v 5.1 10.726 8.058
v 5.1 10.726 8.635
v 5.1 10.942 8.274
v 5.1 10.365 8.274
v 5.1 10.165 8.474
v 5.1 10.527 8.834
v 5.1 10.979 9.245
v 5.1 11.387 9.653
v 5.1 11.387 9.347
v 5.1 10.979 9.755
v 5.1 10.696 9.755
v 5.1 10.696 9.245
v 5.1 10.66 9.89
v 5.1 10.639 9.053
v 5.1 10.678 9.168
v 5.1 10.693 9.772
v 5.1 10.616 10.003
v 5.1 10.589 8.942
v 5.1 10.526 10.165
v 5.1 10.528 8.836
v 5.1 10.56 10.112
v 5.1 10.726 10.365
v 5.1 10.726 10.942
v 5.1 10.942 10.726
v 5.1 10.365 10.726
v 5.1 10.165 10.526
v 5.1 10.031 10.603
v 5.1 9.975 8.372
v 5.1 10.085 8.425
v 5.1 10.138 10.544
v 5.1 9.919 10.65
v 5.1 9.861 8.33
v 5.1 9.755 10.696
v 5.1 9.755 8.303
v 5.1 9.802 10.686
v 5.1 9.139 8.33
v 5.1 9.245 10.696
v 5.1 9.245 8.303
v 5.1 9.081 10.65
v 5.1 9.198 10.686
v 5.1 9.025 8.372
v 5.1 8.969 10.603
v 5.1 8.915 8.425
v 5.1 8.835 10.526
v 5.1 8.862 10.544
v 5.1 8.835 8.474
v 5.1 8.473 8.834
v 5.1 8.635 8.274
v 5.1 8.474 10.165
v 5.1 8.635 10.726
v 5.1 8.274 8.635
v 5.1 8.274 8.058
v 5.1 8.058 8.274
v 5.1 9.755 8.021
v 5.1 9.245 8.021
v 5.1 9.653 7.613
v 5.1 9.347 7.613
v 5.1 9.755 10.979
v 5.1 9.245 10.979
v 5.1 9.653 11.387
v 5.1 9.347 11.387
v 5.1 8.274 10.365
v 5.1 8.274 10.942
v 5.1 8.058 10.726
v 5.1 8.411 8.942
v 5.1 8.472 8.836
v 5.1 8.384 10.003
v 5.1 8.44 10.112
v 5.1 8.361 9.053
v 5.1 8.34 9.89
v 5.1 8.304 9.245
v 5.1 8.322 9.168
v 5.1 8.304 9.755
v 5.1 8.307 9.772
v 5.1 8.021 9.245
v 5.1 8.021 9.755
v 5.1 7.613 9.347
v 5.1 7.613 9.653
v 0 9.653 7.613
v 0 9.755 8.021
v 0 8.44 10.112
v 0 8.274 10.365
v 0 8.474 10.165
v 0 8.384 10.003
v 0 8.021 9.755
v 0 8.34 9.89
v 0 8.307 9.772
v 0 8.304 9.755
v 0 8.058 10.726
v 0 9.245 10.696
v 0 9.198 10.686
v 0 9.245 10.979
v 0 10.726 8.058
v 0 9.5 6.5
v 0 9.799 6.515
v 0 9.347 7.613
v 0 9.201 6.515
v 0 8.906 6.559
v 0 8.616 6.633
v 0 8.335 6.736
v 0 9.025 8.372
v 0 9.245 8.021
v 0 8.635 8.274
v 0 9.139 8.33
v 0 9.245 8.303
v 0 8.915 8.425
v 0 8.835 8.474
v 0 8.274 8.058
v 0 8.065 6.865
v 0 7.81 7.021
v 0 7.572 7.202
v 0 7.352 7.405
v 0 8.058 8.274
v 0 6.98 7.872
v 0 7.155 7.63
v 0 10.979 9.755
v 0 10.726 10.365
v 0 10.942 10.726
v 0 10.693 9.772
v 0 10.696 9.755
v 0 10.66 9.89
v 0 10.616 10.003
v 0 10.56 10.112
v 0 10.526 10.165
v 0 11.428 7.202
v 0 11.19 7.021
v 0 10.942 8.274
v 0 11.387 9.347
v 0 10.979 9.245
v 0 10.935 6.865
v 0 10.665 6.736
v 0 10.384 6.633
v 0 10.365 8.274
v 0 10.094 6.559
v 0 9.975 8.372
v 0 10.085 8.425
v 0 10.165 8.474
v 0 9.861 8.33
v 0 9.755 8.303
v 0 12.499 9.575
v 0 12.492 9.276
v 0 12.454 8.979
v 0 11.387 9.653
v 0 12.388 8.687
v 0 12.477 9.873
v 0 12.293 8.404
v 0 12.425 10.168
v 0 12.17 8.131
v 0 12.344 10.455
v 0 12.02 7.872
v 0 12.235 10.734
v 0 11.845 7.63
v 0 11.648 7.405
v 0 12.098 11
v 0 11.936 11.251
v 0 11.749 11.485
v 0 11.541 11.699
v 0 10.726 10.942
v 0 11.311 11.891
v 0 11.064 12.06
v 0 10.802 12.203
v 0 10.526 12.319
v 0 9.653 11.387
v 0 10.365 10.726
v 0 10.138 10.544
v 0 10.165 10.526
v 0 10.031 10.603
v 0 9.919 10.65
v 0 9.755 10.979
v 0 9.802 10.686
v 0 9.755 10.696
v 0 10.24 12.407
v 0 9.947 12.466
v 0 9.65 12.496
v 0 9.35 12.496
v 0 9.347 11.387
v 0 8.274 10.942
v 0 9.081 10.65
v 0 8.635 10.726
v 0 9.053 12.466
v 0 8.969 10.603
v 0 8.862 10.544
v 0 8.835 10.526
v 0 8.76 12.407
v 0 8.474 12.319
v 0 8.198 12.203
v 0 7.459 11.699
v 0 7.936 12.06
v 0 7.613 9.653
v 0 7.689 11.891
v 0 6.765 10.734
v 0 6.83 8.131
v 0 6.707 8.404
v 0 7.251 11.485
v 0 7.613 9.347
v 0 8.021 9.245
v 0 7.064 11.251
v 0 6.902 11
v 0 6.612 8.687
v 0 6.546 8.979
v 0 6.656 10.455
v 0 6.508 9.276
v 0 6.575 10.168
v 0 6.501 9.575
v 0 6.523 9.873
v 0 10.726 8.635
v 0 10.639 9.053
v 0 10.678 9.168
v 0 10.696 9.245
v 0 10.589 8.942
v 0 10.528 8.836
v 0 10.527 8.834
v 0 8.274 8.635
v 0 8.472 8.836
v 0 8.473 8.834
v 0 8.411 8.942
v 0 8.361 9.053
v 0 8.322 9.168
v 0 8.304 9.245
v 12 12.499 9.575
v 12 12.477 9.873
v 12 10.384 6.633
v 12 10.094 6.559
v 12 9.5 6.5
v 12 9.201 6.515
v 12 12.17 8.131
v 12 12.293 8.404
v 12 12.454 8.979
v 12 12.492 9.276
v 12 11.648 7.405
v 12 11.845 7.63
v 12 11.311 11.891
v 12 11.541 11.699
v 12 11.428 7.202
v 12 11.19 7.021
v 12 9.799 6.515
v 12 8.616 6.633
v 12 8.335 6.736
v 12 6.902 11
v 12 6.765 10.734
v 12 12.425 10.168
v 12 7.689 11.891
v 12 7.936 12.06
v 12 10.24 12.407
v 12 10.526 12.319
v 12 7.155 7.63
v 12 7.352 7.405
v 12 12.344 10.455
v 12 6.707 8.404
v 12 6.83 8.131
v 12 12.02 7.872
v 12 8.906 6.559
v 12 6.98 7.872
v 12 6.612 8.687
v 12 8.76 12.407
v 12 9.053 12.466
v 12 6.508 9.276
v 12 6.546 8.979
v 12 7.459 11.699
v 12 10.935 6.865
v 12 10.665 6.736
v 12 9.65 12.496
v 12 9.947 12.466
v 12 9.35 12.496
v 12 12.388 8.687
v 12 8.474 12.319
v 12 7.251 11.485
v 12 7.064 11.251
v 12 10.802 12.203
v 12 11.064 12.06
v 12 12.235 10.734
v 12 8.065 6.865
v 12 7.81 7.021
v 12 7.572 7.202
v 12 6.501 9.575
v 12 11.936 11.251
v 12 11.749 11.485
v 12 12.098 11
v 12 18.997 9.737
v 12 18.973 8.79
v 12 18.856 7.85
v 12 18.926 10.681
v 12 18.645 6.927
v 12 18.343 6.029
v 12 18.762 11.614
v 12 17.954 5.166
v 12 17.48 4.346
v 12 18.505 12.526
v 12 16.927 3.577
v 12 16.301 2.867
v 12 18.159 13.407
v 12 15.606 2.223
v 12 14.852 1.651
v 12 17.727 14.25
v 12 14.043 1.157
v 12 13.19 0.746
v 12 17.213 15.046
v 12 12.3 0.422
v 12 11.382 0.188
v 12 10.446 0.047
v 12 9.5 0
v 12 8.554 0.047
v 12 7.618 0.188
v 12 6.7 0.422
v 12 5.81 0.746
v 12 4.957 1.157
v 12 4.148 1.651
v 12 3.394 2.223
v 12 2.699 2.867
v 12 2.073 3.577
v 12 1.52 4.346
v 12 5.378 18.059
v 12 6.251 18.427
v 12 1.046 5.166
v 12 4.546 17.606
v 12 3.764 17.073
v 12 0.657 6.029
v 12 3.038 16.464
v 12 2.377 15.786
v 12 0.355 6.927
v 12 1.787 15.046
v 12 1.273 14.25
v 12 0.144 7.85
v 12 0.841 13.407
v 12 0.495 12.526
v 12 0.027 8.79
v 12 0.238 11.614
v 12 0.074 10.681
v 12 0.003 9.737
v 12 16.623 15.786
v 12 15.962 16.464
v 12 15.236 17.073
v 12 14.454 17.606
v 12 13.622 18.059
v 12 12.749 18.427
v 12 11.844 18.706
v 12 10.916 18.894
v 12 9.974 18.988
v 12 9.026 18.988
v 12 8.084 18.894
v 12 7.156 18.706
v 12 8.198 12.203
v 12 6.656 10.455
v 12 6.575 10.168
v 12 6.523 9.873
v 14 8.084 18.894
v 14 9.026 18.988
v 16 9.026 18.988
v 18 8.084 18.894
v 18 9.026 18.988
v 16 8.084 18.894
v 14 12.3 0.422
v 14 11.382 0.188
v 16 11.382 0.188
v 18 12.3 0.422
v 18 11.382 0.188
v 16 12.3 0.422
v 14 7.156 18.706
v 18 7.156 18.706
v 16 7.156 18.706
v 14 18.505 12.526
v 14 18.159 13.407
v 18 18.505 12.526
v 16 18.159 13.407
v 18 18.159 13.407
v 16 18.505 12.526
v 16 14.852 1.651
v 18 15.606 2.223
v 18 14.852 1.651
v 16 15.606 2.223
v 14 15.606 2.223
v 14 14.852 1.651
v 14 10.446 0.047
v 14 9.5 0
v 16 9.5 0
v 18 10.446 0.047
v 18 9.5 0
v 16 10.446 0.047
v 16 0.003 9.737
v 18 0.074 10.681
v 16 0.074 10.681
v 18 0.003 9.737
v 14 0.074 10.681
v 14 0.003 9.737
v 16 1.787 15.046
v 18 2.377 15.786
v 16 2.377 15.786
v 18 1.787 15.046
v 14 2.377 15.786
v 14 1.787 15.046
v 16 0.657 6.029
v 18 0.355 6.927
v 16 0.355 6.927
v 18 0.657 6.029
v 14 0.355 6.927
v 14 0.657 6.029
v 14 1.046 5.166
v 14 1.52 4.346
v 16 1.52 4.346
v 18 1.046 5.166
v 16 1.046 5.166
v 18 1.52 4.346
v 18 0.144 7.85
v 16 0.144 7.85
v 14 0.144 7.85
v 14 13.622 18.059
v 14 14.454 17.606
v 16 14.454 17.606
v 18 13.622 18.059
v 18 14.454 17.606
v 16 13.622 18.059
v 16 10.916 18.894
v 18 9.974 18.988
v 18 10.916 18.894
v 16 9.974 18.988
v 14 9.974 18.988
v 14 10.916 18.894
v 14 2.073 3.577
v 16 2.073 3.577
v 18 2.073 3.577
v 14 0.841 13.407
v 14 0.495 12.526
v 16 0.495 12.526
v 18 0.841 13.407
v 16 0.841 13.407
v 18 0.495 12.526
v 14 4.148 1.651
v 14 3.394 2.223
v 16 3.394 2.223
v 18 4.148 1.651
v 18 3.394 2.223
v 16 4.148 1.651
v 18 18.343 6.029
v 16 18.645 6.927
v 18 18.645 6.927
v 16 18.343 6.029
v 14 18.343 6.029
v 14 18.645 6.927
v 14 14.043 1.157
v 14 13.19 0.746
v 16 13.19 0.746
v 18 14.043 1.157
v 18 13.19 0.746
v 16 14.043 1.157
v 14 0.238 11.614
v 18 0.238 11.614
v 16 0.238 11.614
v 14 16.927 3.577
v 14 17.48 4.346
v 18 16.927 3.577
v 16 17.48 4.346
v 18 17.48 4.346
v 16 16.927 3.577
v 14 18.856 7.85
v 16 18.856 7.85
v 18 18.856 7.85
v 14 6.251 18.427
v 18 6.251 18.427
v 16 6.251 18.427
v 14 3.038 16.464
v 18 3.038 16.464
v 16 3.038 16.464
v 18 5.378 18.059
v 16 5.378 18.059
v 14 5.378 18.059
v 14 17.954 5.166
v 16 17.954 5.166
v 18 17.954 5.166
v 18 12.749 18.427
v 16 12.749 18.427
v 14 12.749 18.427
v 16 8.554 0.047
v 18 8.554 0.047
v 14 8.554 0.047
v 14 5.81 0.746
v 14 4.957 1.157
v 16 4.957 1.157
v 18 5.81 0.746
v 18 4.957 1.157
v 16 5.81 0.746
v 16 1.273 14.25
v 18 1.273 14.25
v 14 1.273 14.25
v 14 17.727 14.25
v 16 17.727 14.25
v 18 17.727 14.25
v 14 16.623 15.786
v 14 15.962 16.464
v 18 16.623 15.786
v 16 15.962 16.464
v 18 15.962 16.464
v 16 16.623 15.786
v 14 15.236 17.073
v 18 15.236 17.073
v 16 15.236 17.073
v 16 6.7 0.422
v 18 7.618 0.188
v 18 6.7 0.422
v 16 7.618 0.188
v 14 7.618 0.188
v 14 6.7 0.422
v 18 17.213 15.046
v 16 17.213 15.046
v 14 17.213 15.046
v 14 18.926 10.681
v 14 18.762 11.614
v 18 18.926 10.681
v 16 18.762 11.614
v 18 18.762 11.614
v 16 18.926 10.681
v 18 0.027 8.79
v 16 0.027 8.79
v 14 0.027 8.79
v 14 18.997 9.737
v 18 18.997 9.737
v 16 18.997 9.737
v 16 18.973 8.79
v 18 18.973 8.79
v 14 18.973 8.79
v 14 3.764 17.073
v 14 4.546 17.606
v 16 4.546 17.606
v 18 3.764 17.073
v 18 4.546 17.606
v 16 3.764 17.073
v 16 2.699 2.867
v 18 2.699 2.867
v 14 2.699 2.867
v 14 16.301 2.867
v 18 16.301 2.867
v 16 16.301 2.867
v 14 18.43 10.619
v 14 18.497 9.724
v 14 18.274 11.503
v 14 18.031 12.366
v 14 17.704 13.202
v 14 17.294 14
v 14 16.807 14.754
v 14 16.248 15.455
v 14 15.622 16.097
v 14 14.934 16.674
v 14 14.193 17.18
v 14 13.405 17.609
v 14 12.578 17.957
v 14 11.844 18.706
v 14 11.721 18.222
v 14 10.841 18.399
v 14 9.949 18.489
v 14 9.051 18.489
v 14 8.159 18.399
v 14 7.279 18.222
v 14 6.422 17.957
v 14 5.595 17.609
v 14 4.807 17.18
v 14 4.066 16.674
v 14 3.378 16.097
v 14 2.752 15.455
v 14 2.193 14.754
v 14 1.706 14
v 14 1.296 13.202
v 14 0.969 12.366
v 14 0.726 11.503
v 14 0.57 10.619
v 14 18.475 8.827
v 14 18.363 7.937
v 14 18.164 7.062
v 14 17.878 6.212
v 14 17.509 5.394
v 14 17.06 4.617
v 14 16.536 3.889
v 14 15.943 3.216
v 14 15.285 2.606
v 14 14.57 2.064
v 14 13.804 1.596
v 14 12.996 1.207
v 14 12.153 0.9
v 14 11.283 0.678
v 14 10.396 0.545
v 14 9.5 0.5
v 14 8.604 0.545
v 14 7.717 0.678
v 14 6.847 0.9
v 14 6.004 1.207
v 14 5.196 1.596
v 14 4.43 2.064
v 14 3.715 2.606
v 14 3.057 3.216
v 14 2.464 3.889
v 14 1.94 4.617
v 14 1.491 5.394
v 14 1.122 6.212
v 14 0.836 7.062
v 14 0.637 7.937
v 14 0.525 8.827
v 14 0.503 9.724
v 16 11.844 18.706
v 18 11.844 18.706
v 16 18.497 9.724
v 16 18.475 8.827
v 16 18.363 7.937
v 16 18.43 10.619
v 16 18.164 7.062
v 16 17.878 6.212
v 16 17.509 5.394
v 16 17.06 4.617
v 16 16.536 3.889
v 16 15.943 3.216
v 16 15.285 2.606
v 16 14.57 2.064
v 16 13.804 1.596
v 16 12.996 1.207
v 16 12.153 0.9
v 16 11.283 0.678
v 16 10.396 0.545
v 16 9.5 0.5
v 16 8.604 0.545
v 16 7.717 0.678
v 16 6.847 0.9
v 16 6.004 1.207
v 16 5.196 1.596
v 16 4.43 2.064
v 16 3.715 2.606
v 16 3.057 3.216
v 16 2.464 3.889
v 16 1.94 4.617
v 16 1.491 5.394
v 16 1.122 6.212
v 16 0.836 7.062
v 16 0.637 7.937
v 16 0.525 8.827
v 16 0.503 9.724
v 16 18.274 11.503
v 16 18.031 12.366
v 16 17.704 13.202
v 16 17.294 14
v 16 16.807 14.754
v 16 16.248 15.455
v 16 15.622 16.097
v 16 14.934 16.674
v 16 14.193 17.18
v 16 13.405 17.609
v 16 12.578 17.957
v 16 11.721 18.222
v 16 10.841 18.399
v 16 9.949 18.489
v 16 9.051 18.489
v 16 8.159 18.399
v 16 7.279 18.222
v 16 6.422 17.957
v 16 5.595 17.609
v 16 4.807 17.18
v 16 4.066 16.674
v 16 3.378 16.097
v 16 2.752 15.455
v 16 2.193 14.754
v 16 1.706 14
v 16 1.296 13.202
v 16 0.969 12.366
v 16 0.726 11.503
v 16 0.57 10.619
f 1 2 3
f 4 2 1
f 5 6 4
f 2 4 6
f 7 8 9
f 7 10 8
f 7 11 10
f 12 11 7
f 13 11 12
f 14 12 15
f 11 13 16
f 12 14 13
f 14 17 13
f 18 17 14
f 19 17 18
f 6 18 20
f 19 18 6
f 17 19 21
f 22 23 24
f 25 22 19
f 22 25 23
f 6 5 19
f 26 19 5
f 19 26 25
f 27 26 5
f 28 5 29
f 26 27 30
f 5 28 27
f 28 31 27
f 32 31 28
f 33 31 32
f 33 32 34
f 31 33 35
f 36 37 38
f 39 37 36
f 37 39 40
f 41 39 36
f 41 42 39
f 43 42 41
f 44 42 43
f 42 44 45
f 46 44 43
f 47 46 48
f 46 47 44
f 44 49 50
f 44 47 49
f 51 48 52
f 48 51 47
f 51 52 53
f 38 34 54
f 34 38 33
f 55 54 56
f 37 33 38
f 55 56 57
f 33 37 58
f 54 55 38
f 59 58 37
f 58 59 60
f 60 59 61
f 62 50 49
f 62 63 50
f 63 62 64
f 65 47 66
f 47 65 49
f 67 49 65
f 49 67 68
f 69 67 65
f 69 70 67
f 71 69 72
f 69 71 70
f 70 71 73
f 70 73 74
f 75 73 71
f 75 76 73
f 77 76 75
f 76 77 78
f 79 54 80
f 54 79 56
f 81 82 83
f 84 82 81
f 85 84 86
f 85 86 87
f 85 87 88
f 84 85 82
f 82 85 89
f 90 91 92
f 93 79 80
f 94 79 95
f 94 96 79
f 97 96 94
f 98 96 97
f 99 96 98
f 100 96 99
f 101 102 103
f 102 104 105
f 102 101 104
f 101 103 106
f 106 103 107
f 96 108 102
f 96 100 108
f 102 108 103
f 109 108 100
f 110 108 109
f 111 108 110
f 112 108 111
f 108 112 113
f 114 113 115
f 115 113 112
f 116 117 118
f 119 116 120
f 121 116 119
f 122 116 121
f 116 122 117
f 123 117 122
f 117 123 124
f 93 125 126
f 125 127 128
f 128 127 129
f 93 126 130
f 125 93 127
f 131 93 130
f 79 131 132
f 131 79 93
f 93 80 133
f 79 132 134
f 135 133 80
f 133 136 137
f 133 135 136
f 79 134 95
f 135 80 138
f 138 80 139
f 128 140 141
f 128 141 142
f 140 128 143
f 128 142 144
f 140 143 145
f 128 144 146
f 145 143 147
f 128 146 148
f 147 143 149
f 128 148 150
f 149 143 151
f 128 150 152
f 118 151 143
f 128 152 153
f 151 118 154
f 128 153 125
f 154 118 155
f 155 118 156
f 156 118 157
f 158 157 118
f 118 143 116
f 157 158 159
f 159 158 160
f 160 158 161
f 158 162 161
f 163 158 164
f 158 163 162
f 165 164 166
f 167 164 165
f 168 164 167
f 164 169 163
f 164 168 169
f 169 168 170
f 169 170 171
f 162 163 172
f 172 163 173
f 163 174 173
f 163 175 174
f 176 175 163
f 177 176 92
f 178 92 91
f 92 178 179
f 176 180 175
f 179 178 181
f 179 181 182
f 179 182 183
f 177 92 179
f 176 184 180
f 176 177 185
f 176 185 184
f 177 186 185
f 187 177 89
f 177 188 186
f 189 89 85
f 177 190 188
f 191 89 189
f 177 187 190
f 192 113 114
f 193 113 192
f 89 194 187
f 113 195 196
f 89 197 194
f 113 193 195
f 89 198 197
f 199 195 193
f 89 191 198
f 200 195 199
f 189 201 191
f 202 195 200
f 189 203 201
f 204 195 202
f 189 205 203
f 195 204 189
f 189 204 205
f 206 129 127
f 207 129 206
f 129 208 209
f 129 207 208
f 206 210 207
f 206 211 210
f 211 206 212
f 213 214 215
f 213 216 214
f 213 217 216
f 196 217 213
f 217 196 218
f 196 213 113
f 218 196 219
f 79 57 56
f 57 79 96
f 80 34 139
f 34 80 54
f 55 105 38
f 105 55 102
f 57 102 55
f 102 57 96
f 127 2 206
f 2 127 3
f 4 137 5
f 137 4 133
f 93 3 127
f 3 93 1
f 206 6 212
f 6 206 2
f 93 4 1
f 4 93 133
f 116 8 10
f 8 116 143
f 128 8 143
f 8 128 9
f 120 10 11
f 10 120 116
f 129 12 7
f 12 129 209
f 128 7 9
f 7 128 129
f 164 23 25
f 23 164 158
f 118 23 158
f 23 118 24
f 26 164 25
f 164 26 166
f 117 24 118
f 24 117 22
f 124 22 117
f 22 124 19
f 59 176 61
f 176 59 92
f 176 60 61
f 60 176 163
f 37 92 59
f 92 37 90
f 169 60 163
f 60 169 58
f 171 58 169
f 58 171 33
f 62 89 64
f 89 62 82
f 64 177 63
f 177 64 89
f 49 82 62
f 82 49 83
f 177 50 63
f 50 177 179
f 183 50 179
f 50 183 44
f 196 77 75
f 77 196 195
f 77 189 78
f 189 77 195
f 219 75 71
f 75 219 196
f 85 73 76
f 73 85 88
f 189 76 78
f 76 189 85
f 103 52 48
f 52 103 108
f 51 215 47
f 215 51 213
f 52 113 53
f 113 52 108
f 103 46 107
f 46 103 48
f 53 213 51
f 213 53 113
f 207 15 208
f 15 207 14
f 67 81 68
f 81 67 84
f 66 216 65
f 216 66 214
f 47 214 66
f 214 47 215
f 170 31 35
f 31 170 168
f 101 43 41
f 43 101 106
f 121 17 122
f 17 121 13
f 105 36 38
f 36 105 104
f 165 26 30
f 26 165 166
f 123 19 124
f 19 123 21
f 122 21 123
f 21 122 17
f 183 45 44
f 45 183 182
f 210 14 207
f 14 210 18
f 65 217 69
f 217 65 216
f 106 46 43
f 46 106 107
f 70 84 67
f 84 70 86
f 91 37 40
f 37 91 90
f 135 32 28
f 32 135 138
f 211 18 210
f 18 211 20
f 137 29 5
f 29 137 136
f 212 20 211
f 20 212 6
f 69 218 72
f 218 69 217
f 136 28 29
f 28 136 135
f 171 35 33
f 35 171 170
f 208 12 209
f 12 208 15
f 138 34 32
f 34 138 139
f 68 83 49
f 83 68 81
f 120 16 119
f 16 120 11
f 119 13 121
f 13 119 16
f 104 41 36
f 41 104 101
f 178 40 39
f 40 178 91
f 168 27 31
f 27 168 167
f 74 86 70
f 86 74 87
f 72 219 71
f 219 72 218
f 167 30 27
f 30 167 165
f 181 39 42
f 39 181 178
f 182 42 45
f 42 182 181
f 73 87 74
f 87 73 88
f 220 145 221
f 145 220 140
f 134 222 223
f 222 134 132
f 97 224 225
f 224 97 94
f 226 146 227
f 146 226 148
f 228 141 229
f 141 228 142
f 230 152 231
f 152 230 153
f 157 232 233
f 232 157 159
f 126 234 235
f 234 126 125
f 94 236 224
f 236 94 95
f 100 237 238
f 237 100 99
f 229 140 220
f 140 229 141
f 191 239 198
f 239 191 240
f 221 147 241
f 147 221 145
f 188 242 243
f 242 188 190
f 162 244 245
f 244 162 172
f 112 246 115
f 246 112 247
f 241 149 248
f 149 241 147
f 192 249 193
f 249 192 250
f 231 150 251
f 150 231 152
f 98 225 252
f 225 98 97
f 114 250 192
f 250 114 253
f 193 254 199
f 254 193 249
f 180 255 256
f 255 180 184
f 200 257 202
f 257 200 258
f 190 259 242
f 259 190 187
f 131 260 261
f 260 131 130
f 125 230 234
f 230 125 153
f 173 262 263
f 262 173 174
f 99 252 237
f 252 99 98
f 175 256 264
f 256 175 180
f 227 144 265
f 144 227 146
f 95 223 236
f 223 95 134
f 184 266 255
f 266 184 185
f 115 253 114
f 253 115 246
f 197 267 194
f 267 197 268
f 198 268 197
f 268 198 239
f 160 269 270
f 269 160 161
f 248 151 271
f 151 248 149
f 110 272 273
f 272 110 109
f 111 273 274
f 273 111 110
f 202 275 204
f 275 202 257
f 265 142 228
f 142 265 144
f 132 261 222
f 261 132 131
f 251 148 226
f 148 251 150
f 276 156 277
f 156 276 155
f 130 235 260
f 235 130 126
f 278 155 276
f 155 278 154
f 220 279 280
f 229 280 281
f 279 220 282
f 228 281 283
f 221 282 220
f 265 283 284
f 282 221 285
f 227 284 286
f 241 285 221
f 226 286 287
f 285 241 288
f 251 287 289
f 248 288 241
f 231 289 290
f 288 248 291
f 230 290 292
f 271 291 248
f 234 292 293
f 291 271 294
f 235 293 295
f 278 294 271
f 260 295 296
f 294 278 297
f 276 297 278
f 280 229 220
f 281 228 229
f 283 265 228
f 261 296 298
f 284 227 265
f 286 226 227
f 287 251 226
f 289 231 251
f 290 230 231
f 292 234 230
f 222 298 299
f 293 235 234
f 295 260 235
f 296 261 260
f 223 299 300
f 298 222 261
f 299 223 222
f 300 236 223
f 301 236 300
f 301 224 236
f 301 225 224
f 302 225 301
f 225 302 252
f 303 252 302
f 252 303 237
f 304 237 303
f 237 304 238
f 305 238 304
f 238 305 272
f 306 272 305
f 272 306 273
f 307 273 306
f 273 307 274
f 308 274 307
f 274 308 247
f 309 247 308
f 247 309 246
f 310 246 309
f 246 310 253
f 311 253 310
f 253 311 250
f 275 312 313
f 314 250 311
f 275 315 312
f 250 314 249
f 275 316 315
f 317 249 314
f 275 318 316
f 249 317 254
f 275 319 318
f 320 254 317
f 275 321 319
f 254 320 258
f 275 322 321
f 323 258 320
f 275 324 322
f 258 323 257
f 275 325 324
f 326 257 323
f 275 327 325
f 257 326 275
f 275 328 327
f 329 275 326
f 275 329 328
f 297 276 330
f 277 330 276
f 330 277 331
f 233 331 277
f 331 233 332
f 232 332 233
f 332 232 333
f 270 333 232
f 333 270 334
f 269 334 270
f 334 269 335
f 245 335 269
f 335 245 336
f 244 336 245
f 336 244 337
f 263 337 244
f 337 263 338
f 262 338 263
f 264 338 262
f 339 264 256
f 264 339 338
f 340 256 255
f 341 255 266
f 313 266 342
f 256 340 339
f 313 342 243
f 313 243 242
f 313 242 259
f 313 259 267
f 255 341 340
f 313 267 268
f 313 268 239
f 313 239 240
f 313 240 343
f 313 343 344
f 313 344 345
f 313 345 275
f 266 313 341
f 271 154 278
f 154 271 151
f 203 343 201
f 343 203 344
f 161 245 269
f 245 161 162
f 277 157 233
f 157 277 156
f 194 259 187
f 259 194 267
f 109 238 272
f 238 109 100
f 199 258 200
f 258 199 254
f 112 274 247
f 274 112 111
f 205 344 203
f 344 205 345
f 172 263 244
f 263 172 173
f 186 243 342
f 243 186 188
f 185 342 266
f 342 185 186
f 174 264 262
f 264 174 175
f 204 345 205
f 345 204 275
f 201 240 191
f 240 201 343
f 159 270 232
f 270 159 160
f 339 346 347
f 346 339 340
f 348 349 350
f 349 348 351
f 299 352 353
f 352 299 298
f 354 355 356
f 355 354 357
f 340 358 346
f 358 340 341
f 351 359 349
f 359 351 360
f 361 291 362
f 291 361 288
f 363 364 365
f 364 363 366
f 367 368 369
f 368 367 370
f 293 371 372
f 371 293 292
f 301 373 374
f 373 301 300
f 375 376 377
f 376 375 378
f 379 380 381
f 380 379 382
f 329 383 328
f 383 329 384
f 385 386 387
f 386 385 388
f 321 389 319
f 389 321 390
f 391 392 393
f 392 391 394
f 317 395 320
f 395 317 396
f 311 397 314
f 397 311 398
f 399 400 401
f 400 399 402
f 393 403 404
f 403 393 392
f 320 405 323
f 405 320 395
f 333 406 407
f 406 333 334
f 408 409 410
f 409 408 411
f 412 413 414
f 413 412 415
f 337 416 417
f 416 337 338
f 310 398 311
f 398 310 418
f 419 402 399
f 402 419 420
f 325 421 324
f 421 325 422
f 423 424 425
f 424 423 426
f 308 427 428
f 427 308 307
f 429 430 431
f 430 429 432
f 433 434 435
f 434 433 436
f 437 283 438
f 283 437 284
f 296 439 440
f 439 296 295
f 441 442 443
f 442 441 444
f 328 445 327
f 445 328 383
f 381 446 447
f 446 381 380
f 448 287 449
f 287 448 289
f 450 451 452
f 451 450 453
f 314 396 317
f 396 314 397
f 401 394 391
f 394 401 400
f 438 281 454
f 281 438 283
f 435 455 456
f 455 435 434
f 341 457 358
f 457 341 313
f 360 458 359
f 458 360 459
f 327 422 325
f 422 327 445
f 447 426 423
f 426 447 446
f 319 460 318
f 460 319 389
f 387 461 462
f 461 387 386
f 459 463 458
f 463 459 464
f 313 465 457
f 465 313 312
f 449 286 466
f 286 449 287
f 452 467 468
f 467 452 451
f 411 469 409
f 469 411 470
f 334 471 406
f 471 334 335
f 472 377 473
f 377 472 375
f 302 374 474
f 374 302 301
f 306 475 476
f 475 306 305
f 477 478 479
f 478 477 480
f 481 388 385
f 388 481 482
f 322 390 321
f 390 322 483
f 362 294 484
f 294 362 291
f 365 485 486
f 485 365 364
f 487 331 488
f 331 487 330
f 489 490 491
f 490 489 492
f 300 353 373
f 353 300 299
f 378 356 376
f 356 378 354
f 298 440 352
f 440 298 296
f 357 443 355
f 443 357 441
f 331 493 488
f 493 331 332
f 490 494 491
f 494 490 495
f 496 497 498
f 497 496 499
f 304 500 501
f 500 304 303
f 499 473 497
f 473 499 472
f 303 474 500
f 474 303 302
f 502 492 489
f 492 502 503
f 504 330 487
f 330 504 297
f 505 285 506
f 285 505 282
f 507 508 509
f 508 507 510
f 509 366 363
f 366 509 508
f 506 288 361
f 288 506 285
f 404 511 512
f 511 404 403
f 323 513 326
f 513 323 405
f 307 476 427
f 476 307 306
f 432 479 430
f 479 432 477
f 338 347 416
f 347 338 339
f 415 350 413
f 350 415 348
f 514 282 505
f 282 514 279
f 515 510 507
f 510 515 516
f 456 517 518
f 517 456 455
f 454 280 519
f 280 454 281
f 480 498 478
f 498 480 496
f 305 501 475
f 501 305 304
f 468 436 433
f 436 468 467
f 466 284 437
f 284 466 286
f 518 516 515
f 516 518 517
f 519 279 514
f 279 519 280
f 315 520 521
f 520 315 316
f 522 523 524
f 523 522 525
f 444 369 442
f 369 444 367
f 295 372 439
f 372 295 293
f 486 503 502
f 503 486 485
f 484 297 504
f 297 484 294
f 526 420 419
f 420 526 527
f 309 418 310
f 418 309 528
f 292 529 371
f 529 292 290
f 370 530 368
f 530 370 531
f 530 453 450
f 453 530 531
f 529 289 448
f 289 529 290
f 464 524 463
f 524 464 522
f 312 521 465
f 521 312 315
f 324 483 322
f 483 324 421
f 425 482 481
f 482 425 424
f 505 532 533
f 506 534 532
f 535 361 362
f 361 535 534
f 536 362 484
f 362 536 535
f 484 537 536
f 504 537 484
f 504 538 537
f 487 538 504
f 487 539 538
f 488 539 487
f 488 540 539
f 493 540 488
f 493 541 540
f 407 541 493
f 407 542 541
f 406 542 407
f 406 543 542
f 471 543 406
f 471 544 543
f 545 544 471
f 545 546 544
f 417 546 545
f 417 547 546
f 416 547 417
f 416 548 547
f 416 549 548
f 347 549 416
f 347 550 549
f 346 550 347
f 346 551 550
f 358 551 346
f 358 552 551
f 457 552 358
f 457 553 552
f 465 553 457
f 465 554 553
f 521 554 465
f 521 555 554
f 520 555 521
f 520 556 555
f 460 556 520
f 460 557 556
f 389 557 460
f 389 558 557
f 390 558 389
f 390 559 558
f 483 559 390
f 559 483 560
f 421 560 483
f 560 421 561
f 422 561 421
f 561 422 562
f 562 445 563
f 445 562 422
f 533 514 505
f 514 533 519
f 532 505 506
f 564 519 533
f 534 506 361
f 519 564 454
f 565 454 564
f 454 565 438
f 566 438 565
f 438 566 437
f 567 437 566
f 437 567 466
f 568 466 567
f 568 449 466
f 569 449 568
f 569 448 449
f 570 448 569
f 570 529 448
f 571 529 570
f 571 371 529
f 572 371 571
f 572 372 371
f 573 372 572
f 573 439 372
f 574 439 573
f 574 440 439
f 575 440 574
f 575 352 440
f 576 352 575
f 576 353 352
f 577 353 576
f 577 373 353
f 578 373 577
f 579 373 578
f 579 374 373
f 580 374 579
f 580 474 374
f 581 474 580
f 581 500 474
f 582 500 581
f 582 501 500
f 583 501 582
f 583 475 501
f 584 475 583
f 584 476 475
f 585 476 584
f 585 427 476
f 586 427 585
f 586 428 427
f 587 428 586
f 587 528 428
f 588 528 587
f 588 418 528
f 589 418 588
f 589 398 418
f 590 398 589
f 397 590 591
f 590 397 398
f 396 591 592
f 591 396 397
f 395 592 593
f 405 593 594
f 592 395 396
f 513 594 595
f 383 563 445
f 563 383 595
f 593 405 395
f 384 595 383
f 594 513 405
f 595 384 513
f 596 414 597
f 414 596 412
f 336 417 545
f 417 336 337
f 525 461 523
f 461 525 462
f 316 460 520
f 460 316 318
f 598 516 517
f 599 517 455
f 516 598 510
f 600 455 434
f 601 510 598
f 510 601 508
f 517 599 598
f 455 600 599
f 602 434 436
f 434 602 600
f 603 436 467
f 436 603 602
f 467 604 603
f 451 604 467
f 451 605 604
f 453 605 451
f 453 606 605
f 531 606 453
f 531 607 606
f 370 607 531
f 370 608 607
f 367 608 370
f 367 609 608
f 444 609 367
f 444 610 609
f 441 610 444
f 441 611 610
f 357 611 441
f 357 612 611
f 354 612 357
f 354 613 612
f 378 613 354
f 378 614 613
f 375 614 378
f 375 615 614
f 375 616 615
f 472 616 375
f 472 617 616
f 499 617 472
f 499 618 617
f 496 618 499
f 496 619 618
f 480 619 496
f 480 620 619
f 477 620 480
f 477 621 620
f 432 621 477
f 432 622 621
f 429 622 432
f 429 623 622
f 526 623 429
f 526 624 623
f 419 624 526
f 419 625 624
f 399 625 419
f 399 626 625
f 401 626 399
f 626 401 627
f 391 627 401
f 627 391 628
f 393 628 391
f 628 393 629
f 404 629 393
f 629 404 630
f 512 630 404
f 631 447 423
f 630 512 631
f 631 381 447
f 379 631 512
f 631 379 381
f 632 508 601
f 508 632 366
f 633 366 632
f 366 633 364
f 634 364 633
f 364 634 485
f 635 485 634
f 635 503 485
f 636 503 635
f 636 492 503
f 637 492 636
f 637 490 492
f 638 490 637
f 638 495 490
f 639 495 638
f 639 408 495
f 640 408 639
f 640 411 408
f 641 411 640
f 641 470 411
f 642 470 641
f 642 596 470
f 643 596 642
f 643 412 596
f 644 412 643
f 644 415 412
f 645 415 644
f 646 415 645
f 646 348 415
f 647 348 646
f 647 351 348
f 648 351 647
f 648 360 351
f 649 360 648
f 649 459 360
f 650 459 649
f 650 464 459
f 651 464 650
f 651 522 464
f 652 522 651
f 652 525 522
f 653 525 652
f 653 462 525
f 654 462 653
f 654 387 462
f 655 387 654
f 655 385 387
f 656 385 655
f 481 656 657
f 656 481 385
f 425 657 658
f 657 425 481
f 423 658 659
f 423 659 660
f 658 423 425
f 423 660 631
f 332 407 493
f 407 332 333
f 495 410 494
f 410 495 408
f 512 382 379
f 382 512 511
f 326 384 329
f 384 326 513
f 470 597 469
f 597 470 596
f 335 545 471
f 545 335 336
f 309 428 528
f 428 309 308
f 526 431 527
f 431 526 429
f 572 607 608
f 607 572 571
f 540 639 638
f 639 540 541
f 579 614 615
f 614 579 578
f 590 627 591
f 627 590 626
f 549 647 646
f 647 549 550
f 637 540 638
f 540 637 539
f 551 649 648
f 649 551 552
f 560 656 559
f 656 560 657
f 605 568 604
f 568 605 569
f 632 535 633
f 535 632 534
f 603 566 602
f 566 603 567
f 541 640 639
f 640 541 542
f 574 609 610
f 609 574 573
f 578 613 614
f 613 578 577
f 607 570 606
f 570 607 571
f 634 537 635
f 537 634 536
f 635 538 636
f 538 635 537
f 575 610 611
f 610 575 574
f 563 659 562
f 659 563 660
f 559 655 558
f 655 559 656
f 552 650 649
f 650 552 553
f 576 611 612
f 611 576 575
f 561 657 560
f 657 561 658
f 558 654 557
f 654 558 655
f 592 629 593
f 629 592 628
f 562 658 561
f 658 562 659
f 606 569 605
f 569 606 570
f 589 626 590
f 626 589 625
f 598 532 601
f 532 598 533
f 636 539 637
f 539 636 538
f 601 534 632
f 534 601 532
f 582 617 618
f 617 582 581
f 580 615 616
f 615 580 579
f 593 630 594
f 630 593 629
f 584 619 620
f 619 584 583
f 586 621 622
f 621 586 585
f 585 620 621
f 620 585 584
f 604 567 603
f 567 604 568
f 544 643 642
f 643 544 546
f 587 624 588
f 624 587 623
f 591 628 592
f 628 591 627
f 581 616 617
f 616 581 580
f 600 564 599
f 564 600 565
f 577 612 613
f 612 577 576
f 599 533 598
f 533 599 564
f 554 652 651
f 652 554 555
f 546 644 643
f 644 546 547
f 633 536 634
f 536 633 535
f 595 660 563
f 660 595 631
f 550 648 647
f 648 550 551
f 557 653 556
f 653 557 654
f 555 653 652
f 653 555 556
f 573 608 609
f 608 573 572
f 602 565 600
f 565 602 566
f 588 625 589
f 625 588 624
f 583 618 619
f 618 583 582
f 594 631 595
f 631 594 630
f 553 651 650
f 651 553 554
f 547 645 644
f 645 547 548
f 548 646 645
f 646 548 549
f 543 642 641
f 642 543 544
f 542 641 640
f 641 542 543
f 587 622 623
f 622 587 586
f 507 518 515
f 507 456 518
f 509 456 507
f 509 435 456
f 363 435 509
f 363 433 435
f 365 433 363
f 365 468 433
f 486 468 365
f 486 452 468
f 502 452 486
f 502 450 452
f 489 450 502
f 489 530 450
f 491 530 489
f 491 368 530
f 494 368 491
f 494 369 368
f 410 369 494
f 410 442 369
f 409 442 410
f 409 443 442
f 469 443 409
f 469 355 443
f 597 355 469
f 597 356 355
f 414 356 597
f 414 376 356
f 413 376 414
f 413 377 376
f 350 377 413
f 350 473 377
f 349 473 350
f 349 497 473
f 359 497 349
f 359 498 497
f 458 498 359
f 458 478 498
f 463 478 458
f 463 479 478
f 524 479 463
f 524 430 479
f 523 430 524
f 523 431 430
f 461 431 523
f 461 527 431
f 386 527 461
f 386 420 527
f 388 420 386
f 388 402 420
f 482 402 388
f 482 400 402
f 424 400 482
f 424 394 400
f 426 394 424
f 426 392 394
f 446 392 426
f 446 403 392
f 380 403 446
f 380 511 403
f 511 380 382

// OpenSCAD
// file: gear_lib.scad
/**************** GEARS ********************
gear(nb-teeth,thikness,scale); // min 10
********************************************/
// https://robotix.ah-oui.org/site/main.php?found=200706-basic-gear-lib

module gr_1(n=0,thk=0){

    r = n*1.5;
  
module tooth(){
    sz = 5;
    sx = 3;
    th = thk;
    of = 5;
        
    hull(){
    translate([0,0,th/2])
    cube([sz,sz,th],center=true); 
    translate([of,0,th/2])
    cube([sx,sx,th],center=true);}}

    for(i=[0:n]) //n is number of teeth
    rotate([0,0,i*360/n])
    translate([r,0,0]) 
    tooth();
    
    cylinder(r=r,h=thk);}

module gear(n=0,thk=0,sc=0){
    sc = sc*0.0204;
    scale(sc)
    gr_1(n=n,thk=thk);}


/********** WORM **********/
    
module grx(nn=0,thkk=0){
  
module tootx(){
    sz = 5;
    sx = 3;
    th = thkk-1.8;
    of = 5;
        rotate([90,0,0])
    hull(){
    translate([0,0,th/2])
    cube([sz,sz,th],center=true); 
    translate([of,0,th/2])
    cube([sx,sx,th],center=true);}}

    for (n = [1 : 450]){
    rotate([0,0,n*4]){
        translate([10,0,n*0.12])
        tootx();
    }}
   // color("yellow")
    translate([0,0,-2.4])
    cylinder(d=16,h=59);
    }
    
module worm(scl=0){
    nn=5;
    thkk=3;
    scl = scl*0.0204;
    scale(scl)
    grx(nn=nn,thkk=thkk);}
    

/**************** GEARS *******************/
// main file
include <gear_lib.scad> // https://robotix.ah-oui.org/site/main.php?found=200706-basic-gear-lib
$fn = 63;

wheel_d = 19;
wheel_h = 6;
shaft_d = 6;
shaft_h = 12;

wheel();

module wheel() {
    difference () {
        translate([0,wheel_d/2,wheel_d/2]) rotate(90, [0,1,0]) cylinder(h=shaft_h, d=shaft_d);
        translate([0,wheel_d/2,wheel_d/2]) rotate(90, [0,1,0]) gear(8,50,5);
    }
    difference() {
        translate([shaft_h,wheel_d/2,wheel_d/2]) rotate(90, [0,1,0]) cylinder(h=wheel_h, d=wheel_d);
        difference() {
            translate([shaft_h+2,wheel_d/2,wheel_d/2]) rotate(90, [0,1,0]) cylinder(h=2, d=wheel_d);
            translate([shaft_h+2,wheel_d/2,wheel_d/2]) rotate(90, [0,1,0]) cylinder(h=2, d=wheel_d-1);
        }
    }
}
